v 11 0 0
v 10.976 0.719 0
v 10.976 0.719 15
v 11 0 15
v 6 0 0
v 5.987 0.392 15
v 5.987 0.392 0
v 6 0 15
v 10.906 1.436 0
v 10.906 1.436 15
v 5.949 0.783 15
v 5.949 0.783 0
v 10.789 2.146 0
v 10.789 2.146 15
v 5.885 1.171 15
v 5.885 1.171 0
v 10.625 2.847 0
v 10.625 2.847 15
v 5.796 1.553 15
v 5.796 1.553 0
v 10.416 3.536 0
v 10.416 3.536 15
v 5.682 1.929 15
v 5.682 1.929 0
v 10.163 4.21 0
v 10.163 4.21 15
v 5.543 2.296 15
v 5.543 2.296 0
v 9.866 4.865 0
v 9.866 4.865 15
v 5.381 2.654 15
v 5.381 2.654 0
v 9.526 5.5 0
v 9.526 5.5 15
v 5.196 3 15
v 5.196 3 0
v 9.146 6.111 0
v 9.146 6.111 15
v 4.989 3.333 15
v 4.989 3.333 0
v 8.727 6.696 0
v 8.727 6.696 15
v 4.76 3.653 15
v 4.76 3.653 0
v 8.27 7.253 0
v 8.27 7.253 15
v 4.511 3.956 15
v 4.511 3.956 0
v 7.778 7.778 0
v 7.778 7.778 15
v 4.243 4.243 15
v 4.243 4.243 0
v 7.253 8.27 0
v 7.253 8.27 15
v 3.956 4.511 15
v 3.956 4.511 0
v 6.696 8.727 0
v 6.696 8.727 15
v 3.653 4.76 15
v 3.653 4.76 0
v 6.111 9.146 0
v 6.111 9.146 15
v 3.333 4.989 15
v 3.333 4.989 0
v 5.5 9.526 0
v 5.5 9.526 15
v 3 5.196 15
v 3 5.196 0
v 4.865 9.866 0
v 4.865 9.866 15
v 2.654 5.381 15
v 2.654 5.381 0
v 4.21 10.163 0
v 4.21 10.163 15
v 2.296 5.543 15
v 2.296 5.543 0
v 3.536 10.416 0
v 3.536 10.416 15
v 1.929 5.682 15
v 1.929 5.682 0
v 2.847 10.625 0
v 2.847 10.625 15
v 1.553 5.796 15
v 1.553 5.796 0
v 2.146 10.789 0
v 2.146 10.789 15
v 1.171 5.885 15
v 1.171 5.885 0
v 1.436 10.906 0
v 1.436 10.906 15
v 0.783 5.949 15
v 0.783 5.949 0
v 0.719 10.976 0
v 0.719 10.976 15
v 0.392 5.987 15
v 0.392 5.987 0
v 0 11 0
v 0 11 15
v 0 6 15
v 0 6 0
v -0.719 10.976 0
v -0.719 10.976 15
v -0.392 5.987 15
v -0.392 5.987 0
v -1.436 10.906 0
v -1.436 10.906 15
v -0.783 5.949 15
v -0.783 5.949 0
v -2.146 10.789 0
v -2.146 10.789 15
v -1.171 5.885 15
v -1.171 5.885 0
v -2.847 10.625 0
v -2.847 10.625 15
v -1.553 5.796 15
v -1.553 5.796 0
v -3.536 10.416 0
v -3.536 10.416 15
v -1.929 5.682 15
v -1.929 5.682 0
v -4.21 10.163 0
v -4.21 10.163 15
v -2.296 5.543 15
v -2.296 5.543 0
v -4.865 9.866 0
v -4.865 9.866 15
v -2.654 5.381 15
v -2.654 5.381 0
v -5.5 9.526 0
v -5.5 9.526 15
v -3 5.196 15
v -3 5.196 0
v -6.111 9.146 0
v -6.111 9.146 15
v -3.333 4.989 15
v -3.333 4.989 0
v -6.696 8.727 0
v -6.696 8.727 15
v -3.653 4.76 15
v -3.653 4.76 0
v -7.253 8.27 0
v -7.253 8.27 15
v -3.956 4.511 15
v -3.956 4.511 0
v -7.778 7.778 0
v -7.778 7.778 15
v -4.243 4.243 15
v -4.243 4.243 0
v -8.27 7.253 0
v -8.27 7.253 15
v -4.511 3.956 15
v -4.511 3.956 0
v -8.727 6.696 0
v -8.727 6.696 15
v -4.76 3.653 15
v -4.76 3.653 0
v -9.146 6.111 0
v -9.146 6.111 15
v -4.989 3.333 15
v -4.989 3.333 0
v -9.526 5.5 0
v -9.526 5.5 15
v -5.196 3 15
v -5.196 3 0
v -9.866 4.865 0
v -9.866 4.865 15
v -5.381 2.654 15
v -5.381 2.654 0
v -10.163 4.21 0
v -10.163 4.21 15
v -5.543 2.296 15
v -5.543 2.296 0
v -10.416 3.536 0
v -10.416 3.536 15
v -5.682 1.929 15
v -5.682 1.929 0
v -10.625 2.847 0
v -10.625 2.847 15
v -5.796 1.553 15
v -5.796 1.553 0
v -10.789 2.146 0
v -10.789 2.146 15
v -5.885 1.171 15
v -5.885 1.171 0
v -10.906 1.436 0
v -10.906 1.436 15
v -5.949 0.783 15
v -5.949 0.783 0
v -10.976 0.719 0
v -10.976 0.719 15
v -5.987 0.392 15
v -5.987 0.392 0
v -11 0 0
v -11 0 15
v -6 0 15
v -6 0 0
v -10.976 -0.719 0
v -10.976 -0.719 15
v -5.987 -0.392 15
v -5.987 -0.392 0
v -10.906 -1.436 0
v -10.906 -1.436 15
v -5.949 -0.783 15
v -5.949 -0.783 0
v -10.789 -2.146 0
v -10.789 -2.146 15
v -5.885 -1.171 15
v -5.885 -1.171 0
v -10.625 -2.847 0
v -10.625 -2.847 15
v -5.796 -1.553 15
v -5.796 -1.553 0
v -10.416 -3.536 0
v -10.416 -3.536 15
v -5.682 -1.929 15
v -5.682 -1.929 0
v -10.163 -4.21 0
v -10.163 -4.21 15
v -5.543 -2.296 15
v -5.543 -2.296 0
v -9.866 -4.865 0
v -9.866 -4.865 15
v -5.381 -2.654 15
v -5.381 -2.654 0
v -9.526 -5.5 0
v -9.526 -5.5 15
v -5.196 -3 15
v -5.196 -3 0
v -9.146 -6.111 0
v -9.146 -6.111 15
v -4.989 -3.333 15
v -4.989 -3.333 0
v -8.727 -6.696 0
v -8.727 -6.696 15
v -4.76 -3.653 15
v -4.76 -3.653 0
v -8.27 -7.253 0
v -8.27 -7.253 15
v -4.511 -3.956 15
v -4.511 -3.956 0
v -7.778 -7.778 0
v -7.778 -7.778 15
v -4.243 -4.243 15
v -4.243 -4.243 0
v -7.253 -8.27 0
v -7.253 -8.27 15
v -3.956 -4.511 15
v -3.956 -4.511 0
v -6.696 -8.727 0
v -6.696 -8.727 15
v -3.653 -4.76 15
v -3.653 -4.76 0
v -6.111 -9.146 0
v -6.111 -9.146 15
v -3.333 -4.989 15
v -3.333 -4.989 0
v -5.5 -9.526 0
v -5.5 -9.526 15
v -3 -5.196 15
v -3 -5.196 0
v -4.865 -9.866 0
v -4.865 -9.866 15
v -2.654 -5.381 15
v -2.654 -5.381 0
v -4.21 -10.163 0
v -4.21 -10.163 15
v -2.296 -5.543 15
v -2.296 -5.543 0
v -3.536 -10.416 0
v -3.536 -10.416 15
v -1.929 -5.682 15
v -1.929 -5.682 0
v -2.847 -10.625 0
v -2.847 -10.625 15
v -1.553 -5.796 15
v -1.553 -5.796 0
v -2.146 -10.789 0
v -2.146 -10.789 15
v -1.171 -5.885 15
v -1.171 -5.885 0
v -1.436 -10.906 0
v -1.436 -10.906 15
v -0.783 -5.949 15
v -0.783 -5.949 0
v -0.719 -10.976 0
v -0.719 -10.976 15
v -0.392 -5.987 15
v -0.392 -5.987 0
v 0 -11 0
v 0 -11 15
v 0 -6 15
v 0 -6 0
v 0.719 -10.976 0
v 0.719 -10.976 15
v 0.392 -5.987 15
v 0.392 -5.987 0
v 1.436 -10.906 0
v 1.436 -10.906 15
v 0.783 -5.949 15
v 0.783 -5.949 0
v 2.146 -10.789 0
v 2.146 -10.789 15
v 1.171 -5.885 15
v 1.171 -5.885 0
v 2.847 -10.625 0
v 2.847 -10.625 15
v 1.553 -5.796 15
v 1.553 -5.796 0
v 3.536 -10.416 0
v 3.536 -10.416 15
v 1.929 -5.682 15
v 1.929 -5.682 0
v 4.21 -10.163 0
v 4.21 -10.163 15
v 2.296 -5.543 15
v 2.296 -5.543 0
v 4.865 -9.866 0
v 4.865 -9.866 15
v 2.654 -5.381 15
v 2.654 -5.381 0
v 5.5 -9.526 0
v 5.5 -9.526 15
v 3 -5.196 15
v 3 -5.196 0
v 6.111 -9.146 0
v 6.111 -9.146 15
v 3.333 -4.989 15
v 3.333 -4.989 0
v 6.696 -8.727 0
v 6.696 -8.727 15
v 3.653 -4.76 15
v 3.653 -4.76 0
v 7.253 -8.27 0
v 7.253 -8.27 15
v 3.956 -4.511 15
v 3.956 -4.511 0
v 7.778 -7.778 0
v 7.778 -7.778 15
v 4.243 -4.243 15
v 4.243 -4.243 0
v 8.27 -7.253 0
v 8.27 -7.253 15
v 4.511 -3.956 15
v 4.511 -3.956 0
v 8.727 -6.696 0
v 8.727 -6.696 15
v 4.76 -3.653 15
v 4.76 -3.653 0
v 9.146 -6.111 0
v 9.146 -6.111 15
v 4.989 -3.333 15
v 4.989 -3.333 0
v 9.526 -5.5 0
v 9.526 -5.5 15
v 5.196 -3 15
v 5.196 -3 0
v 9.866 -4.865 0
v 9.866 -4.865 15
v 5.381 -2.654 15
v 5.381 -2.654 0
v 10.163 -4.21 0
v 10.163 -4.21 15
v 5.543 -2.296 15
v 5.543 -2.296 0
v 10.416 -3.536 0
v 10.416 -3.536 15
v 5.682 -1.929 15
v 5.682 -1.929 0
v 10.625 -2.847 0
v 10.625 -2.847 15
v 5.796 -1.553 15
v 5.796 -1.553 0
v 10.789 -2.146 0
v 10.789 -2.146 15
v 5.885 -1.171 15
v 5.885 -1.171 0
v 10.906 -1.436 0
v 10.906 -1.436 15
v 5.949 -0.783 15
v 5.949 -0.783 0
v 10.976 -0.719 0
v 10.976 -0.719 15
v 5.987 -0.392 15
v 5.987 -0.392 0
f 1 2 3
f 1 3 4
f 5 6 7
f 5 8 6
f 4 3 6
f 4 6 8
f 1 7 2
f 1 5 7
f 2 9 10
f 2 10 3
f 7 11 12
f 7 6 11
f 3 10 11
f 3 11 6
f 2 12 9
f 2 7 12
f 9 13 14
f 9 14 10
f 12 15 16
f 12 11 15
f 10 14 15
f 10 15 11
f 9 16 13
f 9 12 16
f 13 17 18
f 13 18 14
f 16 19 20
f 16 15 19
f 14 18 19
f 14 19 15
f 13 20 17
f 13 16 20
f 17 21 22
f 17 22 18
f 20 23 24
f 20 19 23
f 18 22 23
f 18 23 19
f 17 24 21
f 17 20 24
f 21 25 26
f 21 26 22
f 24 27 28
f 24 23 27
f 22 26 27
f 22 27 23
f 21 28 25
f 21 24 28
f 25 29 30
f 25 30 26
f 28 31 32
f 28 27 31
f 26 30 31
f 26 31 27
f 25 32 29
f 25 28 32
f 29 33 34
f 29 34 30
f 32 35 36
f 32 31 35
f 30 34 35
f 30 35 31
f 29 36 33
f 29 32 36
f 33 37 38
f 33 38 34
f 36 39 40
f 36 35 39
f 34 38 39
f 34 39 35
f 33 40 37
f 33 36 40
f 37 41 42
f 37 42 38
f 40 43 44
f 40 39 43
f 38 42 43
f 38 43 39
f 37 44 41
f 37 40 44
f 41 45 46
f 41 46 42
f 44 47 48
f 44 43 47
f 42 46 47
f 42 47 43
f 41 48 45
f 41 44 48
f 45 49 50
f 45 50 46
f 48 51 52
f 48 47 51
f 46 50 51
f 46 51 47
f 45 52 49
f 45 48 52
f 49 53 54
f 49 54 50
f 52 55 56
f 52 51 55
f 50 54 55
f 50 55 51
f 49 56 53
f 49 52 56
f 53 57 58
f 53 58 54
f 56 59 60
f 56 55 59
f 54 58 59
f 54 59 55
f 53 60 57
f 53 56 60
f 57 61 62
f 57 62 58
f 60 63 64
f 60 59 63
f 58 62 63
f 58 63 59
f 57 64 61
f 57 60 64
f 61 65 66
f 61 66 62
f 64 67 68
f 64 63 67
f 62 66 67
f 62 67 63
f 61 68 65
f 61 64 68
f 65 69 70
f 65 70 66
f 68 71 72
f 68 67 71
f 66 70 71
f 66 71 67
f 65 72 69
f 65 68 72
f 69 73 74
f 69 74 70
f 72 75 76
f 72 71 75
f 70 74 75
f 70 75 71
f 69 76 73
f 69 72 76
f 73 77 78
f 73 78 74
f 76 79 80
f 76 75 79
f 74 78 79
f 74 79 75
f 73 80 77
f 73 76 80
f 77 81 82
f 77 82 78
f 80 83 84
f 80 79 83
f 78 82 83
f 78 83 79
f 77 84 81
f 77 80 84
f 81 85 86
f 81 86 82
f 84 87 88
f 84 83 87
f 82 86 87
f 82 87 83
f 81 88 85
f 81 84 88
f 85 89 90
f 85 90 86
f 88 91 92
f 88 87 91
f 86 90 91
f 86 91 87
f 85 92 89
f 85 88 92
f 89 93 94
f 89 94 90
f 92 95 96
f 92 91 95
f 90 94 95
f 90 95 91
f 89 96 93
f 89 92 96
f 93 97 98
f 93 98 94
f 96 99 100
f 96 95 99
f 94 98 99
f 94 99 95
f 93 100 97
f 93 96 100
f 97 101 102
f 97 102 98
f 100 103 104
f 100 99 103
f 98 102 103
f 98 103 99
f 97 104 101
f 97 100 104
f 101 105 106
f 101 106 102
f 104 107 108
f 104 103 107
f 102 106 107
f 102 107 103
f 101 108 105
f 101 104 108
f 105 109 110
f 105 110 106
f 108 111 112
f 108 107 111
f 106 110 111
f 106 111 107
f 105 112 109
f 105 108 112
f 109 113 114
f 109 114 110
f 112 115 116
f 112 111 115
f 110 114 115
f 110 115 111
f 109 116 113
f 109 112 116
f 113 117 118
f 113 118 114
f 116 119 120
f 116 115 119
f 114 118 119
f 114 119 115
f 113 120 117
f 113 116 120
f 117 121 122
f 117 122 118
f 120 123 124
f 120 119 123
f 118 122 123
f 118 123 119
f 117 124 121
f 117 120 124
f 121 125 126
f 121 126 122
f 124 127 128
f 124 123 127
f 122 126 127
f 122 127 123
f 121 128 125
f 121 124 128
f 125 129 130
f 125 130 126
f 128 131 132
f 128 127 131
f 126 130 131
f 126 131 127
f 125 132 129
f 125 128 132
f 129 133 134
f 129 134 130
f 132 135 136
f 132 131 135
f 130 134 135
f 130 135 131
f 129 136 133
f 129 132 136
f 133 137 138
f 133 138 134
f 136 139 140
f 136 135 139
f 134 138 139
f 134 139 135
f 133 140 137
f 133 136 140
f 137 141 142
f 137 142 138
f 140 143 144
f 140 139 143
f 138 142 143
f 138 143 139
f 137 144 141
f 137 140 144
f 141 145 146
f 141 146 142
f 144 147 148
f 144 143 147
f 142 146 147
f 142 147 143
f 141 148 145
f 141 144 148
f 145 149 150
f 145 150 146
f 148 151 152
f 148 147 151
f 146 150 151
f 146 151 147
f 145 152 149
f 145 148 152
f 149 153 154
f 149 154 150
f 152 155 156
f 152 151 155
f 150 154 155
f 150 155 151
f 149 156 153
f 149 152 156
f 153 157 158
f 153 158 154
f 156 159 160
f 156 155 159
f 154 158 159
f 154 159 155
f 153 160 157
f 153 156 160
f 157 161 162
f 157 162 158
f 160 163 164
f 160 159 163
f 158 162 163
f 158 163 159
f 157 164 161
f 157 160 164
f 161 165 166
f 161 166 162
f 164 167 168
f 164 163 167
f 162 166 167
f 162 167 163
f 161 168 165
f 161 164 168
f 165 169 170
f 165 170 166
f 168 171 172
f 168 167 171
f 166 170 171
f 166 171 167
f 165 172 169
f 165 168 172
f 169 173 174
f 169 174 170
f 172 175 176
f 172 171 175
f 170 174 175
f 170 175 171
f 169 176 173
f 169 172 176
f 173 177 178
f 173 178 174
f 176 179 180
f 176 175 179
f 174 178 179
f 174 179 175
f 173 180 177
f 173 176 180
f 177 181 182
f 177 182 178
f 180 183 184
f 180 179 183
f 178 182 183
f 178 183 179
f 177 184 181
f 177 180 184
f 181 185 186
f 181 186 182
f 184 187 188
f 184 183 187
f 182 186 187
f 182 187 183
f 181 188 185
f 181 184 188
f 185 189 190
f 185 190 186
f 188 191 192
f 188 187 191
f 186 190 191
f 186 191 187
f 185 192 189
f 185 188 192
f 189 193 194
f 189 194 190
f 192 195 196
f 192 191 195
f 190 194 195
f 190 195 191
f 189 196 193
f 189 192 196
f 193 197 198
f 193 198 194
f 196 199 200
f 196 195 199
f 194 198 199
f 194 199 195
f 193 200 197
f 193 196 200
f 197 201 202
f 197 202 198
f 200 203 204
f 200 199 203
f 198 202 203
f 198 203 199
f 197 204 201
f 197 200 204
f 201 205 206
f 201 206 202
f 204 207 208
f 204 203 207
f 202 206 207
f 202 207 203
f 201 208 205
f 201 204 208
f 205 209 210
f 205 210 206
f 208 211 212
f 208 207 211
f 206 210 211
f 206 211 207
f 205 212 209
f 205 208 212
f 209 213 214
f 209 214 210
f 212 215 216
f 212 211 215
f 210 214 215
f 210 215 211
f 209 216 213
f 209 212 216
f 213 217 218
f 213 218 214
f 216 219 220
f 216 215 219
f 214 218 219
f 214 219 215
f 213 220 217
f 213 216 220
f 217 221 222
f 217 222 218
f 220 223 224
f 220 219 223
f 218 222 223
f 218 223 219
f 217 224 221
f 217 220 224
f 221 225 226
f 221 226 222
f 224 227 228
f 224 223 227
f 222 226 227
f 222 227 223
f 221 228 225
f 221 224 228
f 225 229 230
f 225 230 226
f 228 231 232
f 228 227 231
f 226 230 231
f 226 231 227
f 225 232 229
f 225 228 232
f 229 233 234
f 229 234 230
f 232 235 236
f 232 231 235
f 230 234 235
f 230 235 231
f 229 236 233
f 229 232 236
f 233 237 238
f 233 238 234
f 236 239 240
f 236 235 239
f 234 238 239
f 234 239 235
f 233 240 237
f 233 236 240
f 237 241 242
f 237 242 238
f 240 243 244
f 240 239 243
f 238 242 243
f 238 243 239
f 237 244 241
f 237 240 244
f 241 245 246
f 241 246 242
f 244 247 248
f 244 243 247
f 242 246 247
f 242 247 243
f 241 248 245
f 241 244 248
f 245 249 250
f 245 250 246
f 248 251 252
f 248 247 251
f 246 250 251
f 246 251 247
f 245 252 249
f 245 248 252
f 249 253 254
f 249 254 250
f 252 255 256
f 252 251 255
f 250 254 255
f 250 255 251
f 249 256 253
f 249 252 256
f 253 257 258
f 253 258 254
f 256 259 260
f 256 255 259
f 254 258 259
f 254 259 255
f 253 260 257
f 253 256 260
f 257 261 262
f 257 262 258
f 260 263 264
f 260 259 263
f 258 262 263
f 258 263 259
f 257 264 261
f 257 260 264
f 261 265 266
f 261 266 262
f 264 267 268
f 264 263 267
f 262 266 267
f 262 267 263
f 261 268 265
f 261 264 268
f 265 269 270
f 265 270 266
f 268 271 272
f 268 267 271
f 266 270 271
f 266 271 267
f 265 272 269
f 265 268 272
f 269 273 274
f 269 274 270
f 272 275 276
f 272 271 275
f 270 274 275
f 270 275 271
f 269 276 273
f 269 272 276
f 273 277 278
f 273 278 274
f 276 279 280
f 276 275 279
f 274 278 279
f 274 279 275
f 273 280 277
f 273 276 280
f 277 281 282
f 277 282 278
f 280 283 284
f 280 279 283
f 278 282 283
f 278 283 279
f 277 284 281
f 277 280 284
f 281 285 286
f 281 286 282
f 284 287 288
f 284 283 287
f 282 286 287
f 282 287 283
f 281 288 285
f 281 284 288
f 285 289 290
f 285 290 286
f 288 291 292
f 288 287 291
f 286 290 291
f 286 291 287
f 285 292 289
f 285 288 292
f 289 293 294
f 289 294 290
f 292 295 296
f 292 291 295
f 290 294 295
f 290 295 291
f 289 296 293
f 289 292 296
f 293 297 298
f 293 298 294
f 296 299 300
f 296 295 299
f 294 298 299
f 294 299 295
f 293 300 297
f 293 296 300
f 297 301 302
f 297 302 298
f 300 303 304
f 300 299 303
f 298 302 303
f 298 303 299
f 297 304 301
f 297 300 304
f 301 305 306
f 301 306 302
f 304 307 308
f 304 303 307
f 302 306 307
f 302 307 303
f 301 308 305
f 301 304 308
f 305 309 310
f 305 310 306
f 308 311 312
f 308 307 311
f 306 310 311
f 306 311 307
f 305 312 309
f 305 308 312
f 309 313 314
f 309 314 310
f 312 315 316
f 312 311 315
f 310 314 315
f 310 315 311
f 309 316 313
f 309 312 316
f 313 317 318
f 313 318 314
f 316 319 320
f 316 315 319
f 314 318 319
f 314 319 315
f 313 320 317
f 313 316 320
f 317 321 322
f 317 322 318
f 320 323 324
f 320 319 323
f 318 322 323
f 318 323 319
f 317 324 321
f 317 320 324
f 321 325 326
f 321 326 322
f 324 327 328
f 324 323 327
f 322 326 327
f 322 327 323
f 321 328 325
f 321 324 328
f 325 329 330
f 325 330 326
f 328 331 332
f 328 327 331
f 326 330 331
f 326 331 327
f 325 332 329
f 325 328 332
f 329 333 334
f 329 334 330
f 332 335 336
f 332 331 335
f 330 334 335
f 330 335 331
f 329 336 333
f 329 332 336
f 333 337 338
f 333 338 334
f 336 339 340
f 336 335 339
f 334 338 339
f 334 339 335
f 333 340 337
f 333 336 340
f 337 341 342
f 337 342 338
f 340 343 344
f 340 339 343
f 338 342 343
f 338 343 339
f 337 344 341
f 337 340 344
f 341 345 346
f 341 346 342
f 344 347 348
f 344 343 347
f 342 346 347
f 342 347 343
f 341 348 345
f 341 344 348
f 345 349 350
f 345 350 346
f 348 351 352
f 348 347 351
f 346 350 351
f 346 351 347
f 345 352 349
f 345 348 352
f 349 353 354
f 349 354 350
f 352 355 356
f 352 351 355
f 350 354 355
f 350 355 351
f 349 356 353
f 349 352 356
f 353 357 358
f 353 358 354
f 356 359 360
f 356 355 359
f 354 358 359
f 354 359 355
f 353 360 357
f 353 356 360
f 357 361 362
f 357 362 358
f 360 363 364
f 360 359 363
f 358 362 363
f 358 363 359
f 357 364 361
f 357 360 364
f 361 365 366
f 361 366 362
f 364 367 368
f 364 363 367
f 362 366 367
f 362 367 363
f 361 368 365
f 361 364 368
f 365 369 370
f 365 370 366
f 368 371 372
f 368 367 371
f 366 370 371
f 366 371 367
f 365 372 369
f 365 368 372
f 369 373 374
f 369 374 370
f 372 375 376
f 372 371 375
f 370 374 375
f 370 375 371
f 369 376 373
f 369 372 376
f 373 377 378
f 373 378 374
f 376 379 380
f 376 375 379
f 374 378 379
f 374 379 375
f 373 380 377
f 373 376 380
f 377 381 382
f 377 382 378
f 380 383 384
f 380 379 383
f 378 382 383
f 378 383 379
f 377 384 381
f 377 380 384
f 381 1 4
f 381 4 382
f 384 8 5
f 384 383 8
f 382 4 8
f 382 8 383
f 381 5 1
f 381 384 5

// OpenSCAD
// Original MechIntel educational model. CC0-1.0. Units: mm.
// Not a standardized or load-rated component.
$fn=96;
outer_diameter=22;
inner_diameter=12;
height=15;
difference(){ cylinder(d=outer_diameter,h=height); if(inner_diameter>0) translate([0,0,-1]) cylinder(d=inner_diameter,h=height+2); }
